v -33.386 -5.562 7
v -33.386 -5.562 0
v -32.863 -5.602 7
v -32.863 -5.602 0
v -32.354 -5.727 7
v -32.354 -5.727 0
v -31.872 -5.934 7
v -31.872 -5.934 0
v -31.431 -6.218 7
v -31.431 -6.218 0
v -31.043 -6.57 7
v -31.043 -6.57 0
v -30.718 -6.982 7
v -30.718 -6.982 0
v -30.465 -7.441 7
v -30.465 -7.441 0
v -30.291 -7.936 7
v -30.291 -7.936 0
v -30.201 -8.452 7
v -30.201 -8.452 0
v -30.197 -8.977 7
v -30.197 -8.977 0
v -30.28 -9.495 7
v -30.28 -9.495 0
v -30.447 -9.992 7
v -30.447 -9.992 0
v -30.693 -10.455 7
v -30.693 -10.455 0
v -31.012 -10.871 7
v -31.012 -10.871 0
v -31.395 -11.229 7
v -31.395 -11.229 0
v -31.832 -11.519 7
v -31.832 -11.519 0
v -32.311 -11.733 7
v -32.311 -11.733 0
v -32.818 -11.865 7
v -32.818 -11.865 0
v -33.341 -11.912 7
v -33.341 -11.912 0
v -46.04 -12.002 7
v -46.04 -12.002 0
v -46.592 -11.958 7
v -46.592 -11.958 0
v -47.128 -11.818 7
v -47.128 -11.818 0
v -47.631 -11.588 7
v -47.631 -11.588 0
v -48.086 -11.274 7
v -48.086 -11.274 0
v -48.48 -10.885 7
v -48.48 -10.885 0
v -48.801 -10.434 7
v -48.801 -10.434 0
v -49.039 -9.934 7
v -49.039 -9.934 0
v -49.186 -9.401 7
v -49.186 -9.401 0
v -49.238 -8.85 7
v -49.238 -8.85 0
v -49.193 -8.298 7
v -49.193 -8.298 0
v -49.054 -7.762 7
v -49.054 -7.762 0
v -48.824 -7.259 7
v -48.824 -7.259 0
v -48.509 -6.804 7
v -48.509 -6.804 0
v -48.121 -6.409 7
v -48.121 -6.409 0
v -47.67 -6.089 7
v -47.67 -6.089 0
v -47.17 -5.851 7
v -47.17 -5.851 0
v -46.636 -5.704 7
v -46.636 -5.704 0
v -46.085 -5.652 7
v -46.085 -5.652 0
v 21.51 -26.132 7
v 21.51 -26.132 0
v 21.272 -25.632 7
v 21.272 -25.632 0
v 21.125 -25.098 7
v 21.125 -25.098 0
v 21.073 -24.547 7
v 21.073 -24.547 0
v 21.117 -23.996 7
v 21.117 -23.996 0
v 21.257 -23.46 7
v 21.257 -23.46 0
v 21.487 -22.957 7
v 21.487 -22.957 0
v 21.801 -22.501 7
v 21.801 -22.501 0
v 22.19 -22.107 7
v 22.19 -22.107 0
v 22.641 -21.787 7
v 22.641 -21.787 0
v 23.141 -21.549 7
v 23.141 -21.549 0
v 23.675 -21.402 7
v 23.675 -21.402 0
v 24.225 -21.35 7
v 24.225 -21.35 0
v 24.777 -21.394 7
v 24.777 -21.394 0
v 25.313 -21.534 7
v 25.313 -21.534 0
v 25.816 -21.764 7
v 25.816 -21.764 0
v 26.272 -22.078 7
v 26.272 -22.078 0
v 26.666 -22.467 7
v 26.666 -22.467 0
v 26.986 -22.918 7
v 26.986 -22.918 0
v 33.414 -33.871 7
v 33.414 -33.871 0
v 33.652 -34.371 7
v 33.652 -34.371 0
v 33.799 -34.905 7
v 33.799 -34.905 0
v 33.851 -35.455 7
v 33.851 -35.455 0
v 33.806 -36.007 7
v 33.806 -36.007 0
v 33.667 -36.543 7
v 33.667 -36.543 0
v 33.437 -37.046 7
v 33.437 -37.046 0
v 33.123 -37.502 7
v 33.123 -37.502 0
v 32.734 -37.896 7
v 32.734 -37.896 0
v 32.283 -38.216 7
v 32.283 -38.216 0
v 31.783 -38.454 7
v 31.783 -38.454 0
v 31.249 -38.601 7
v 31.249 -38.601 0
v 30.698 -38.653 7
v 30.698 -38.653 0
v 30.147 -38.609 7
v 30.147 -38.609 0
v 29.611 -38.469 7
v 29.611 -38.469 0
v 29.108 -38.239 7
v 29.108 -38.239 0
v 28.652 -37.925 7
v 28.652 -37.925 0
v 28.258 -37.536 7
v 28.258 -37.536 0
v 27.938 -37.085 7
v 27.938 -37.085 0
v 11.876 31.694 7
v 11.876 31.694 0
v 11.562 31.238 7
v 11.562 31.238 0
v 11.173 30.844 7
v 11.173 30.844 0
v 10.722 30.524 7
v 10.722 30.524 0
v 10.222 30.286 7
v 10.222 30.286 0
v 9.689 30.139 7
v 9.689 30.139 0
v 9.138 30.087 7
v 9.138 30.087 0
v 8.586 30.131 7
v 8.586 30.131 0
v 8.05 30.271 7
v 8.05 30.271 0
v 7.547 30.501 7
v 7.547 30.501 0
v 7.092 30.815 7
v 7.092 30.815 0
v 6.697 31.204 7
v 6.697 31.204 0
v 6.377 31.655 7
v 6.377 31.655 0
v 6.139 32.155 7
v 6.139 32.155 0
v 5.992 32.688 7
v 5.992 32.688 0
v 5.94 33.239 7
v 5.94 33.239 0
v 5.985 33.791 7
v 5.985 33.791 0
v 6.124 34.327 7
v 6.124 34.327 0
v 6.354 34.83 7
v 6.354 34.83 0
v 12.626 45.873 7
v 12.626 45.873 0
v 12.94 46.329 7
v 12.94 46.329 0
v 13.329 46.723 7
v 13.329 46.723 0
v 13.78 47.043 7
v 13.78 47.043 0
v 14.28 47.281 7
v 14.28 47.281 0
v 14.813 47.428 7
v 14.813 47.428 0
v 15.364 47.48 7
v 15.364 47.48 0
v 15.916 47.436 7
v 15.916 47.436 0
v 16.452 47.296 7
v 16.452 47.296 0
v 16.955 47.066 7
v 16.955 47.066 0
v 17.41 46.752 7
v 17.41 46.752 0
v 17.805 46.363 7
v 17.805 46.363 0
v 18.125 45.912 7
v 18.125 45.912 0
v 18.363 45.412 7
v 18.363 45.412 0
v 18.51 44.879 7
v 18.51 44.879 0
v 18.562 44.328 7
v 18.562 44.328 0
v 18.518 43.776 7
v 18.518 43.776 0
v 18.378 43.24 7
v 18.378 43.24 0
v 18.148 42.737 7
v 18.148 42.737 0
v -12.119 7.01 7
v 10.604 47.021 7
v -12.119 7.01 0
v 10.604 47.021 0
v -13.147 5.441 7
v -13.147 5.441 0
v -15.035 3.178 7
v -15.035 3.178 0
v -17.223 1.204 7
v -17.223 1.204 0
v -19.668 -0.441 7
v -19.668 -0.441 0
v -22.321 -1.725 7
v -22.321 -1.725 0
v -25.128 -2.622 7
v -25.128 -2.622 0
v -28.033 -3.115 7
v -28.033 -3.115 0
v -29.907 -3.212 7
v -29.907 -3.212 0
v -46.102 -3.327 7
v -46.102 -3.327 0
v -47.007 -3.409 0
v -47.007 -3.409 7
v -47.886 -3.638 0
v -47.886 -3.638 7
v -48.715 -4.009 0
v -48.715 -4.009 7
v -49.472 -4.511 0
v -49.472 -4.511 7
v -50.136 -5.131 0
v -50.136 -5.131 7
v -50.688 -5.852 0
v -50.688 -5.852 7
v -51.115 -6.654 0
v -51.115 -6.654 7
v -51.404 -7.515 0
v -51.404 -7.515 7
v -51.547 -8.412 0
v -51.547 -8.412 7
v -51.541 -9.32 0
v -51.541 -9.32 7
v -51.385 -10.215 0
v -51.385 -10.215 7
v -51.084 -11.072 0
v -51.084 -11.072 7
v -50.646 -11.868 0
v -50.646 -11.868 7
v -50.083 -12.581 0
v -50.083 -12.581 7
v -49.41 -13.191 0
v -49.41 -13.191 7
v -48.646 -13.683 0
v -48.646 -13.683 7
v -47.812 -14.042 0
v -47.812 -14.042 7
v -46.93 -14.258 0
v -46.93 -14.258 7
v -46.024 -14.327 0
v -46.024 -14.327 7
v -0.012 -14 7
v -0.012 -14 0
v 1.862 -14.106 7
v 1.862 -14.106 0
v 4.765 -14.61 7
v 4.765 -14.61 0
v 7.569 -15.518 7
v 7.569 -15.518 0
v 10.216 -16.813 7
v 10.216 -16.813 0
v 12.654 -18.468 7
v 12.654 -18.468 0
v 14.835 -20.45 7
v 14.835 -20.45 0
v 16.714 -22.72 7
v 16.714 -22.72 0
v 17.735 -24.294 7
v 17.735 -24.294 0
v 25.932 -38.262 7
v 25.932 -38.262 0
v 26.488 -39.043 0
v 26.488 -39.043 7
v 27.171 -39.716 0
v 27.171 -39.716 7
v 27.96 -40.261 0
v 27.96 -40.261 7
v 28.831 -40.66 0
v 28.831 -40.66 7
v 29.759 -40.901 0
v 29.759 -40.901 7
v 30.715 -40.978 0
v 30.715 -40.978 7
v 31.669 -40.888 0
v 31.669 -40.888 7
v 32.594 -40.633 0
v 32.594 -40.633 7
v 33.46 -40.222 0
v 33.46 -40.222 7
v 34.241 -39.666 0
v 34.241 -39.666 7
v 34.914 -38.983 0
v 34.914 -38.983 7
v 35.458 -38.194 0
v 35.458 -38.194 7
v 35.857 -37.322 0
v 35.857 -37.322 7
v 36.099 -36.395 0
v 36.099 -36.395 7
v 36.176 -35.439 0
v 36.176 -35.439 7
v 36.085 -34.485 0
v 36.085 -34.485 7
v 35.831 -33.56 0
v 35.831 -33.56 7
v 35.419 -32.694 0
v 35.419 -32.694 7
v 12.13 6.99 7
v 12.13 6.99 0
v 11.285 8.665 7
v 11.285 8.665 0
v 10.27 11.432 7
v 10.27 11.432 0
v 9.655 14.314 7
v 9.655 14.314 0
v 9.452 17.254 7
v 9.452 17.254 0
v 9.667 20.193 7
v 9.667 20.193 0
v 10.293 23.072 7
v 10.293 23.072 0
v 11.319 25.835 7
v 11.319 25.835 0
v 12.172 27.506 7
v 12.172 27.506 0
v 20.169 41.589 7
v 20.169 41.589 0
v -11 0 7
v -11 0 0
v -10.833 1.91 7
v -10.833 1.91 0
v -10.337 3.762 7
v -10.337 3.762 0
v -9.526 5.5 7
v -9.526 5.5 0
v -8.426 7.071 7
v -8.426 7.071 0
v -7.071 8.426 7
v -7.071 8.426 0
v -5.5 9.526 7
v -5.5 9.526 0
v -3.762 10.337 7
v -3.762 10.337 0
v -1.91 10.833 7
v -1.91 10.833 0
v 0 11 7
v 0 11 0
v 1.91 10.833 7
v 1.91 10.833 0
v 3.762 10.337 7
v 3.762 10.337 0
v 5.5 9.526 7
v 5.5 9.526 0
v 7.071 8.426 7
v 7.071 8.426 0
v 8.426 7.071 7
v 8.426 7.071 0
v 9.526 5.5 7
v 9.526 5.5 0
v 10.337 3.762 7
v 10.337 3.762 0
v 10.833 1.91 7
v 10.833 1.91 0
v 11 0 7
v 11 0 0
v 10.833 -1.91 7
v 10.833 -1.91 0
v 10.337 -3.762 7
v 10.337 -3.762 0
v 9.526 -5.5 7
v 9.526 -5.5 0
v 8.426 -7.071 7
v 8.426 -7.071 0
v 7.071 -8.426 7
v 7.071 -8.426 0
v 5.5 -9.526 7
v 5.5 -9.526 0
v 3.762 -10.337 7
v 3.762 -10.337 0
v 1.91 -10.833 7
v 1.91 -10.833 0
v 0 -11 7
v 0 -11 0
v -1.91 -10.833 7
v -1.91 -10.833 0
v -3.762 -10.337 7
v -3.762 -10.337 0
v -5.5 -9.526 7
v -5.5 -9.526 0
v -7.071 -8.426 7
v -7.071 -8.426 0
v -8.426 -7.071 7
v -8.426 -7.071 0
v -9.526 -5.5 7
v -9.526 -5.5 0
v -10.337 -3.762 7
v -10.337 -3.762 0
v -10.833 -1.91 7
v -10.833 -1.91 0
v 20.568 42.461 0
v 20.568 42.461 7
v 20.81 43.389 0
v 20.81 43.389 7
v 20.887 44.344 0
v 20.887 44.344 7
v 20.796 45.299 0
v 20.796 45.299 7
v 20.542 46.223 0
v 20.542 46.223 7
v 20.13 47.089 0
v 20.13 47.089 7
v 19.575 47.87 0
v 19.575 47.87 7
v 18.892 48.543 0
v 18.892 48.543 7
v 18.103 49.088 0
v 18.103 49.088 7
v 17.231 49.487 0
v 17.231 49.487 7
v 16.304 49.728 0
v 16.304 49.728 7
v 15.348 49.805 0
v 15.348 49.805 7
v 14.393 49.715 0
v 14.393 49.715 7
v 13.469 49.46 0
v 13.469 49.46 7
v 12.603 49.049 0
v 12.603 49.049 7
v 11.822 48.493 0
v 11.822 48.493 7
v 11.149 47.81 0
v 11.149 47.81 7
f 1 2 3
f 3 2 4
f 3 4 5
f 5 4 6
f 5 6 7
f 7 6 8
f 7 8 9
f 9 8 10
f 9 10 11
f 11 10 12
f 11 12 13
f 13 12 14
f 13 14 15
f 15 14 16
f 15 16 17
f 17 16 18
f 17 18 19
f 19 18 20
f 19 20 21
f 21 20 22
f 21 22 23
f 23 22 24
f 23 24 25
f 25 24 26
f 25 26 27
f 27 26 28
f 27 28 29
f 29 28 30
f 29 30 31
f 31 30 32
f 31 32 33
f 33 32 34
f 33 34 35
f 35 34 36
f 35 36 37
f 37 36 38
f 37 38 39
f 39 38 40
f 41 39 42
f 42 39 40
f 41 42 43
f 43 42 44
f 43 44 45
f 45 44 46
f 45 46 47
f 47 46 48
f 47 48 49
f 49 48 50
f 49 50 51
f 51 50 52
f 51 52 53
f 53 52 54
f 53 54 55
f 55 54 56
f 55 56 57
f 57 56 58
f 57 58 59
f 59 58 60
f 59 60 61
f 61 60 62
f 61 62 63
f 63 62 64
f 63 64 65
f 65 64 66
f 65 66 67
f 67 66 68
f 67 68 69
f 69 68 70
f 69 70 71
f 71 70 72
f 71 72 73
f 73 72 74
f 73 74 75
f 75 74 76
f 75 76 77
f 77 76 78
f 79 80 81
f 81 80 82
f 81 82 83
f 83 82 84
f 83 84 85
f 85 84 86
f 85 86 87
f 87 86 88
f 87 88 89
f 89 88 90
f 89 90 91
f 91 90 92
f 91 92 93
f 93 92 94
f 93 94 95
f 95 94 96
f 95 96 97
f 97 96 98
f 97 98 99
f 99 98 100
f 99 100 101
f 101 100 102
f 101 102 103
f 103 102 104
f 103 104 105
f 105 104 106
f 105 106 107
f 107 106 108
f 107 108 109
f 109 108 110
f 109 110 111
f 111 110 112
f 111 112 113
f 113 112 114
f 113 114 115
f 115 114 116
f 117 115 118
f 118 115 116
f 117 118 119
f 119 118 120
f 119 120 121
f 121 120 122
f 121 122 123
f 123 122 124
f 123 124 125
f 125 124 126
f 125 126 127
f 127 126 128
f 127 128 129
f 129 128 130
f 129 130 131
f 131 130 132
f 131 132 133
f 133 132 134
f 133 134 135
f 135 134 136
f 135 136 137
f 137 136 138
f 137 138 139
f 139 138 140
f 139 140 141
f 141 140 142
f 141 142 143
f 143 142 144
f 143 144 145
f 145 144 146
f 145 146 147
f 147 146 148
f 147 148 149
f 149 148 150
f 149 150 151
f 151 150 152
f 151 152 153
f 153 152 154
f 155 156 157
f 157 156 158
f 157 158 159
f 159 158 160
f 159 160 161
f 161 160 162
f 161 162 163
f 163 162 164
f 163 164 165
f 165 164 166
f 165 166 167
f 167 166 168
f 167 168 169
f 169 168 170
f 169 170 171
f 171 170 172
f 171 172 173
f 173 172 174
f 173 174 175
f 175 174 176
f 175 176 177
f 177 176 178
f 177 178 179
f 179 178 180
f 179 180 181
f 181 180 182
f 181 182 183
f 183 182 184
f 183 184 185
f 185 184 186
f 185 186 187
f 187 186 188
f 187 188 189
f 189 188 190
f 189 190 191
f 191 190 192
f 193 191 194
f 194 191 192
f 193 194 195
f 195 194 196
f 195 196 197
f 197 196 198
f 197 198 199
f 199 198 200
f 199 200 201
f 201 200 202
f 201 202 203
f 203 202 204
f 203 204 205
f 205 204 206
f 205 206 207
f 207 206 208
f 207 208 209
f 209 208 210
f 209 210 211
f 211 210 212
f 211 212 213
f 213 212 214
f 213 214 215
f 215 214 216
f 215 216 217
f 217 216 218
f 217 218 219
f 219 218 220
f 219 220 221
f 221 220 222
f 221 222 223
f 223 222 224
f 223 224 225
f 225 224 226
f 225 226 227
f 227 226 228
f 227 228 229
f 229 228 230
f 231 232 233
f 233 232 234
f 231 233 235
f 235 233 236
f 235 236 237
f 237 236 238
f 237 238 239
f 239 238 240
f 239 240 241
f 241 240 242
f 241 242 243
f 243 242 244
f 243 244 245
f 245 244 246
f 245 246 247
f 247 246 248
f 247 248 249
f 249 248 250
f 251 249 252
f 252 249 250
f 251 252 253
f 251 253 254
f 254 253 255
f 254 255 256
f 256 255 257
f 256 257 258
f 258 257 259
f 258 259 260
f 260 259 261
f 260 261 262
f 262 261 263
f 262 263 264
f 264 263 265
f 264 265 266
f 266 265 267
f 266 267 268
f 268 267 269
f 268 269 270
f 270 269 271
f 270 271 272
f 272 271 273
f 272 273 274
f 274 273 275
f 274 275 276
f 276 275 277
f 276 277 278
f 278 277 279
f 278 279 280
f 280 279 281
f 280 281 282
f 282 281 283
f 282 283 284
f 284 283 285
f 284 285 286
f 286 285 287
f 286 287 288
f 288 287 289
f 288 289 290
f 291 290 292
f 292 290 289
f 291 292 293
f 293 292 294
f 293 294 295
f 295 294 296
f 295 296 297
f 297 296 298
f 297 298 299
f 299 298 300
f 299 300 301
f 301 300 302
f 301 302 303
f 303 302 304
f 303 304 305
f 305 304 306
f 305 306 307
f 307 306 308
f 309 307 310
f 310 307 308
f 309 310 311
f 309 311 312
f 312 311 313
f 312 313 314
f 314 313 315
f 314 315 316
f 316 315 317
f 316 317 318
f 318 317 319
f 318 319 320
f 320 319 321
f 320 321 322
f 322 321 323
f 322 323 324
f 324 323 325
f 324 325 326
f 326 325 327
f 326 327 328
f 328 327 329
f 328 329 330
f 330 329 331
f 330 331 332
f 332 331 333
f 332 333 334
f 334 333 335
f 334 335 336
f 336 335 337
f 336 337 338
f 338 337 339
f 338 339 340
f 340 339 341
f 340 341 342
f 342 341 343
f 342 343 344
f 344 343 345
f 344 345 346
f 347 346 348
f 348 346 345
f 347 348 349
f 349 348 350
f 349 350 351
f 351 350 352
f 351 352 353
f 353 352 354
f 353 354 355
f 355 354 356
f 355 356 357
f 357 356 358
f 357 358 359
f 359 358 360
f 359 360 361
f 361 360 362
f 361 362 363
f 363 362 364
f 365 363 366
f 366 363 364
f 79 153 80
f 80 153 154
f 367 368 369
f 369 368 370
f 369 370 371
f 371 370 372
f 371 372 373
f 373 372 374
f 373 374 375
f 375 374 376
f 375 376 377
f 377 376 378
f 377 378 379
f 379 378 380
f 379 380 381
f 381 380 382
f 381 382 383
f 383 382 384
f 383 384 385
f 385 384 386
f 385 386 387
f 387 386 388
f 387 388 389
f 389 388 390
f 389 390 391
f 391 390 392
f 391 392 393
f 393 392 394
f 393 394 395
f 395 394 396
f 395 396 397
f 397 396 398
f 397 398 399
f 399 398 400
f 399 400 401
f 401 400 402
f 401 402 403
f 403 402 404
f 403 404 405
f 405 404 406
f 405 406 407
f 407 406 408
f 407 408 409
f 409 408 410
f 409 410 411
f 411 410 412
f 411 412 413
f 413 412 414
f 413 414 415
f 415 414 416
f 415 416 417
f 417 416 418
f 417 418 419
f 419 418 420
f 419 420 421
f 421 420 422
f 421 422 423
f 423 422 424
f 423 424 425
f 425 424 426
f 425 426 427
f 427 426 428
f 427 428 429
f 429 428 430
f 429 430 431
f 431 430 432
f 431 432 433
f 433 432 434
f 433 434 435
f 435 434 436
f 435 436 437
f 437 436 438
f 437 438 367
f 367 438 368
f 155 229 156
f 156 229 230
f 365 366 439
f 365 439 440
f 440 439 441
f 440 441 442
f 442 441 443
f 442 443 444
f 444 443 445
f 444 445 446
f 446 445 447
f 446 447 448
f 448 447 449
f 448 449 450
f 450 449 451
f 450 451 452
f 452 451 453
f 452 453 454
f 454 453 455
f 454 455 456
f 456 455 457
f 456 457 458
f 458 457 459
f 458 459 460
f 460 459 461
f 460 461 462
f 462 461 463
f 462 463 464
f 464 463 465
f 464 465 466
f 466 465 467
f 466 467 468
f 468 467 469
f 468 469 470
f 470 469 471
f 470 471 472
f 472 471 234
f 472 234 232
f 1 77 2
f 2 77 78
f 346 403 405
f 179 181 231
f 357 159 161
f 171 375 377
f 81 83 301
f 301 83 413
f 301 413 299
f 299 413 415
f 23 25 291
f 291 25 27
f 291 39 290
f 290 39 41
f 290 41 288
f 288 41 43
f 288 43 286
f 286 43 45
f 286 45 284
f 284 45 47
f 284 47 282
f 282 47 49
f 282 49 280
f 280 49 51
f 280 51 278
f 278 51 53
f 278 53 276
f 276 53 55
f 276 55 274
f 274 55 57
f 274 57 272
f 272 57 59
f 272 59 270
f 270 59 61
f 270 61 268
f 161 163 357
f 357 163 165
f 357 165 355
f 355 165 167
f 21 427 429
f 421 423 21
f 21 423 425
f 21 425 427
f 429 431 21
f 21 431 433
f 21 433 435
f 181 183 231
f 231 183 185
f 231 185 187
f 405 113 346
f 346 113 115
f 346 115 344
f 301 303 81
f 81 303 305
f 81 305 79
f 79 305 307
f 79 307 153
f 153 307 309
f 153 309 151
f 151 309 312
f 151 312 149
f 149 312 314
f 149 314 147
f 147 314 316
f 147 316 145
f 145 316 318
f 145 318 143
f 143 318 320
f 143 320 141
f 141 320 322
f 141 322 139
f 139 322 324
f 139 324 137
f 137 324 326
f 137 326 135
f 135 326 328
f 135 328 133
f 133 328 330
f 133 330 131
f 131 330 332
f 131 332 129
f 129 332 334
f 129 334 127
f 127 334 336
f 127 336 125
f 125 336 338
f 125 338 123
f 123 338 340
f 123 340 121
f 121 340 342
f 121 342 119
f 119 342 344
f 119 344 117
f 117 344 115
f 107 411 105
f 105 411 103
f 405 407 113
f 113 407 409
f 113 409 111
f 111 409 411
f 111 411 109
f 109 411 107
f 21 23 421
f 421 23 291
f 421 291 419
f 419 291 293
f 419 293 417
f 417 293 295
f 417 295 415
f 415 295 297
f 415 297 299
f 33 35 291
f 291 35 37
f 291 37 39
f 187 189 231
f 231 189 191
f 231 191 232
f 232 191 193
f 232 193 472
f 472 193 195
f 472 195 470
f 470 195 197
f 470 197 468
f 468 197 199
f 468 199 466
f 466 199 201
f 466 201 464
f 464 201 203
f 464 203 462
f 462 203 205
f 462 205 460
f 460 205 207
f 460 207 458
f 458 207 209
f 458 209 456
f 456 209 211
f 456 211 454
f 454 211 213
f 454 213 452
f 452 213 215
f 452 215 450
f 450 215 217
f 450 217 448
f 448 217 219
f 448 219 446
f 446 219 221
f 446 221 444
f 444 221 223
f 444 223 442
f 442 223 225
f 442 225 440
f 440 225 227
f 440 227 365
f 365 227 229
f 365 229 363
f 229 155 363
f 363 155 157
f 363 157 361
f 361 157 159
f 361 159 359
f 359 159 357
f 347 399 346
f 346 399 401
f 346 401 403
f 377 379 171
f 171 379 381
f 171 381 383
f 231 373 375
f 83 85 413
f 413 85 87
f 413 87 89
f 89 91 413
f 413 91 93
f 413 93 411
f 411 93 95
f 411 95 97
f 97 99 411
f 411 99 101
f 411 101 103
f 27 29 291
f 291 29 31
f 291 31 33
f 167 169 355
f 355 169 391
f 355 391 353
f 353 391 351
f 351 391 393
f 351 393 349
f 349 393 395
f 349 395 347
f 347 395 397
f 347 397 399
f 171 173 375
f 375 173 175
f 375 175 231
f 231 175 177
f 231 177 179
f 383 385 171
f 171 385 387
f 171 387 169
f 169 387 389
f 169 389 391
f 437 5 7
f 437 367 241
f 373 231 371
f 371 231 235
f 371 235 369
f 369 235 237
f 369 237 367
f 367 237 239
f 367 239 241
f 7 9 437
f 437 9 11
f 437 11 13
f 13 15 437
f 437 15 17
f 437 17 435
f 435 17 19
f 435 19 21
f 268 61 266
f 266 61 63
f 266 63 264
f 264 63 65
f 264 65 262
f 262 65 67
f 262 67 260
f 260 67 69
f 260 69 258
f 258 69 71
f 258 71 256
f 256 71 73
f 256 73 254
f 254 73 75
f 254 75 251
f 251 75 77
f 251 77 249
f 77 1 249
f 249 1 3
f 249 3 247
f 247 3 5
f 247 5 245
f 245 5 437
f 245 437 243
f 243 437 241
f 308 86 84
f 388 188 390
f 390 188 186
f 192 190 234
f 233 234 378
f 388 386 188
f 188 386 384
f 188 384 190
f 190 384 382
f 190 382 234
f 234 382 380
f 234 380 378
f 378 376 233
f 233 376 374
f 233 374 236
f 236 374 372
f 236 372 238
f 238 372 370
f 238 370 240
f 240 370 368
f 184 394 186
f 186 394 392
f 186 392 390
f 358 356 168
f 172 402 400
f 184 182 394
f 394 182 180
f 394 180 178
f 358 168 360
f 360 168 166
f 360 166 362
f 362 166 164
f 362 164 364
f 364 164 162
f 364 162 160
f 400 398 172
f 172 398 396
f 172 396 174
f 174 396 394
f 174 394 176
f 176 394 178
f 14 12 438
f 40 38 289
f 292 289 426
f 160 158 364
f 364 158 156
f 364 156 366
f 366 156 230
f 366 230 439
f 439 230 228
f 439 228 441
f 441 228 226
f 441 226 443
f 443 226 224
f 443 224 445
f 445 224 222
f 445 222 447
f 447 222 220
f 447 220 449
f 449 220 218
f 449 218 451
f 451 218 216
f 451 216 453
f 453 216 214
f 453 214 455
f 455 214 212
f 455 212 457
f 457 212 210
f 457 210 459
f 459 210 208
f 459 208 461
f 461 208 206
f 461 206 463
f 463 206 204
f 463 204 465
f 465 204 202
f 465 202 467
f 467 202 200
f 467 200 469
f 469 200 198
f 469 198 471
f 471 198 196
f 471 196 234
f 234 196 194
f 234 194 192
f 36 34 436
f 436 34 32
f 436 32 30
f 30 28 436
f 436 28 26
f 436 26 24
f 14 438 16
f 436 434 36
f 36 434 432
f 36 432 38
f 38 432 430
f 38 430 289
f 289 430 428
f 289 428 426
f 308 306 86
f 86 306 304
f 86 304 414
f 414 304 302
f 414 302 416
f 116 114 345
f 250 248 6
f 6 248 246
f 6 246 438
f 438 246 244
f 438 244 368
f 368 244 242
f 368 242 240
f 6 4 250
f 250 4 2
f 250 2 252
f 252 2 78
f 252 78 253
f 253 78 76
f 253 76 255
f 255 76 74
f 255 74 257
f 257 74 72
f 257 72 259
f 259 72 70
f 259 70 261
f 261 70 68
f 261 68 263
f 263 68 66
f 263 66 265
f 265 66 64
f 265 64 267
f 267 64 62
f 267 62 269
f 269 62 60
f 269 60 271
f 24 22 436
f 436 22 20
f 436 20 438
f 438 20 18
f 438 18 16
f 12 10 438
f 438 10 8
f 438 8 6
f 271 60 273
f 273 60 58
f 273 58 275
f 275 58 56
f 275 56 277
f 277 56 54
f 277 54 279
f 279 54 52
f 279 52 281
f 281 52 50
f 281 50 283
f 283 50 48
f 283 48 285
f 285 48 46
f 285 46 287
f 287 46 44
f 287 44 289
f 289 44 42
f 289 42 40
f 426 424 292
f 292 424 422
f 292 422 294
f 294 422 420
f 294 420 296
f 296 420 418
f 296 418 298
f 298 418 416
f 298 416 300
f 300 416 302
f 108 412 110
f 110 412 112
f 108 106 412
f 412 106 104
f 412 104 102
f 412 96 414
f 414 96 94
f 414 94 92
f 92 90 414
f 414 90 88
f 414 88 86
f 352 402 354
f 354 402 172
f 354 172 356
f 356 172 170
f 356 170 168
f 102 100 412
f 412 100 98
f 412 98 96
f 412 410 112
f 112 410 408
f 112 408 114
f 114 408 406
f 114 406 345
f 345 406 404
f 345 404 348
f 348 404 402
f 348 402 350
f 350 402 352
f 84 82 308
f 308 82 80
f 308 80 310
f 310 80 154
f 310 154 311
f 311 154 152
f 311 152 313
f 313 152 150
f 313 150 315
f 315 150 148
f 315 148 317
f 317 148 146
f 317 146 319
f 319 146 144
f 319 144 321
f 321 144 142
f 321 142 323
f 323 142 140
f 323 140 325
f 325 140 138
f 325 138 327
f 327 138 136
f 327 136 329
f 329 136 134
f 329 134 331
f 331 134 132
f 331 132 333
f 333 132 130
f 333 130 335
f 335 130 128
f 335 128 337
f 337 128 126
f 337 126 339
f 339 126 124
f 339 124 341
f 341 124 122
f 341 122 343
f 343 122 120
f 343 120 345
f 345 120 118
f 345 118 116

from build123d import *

# Parameters (mm, degrees)
SKETCH1_R           = 11
BOSS_EXTRUDE2_DEPTH = 7


with BuildPart() as part:
    # Sketch1 → Boss-Extrude2 (new body)
    with BuildSketch(Plane.XY):
        with BuildLine():
            ThreePointArc((20.169463689, 41.588983826), (18.10306117, 49.087649082), (10.604395914, 47.021246564))
            Line((10.604395914, 47.021246564), (-12.118876528, 7.010361333))
            ThreePointArc((-12.118876528, 7.010361333), (-19.668266357, -0.440838827), (-29.907048562, -3.212302261))
            Line((-29.907048562, -3.212302261), (-46.101848355, -3.327223978))
            ThreePointArc((-46.101848355, -3.327223978), (-51.562681703, -8.866113681), (-46.023791999, -14.326947029))
            Line((-46.023791999, -14.326947029), (-0.01171274, -14.000435605))
            ThreePointArc((-0.01171274, -14.000435605), (10.215910802, -16.8127989), (17.735459644, -24.294112676))
            Line((17.735459644, -24.294112676), (25.932384666, -38.261759848))
            ThreePointArc((25.932384666, -38.261759848), (33.459620532, -40.221535401), (35.419396085, -32.694299535))
            Line((35.419396085, -32.694299535), (12.130589268, 6.990074273))
            ThreePointArc((12.130589268, 6.990074273), (9.452355555, 17.253637727), (12.171588918, 27.506414937))
            Line((12.171588918, 27.506414937), (20.169463689, 41.588983826))
        make_face()
        with BuildLine():
            Line((6.354309168, 34.829758236), (12.626103421, 45.873063758))
            ThreePointArc((12.626103421, 45.873063758), (16.954878364, 47.065941576), (18.147756182, 42.737166632))
            Line((18.147756182, 42.737166632), (11.875961929, 31.69386111))
            ThreePointArc((11.875961929, 31.69386111), (7.547186985, 30.500983292), (6.354309168, 34.829758236))
        make_face(mode=Mode.SUBTRACT)
        with BuildLine():
            ThreePointArc((-46.040290274, -12.002005566), (-49.23774024, -8.849615406), (-46.08535008, -5.652165441))
            Line((-46.08535008, -5.652165441), (-33.38566983, -5.56204583))
            ThreePointArc((-33.38566983, -5.56204583), (-30.188219864, -8.71443599), (-33.340610024, -11.911885955))
            Line((-33.340610024, -11.911885955), (-46.040290274, -12.002005566))
        make_face(mode=Mode.SUBTRACT)
        Circle(SKETCH1_R, mode=Mode.SUBTRACT)
        with BuildLine():
            ThreePointArc((33.414186854, -33.871058192), (32.282861875, -38.216326169), (27.937593898, -37.085001191))
            Line((27.937593898, -37.085001191), (21.509707901, -26.13181528))
            ThreePointArc((21.509707901, -26.13181528), (22.641032879, -21.786547303), (26.986300856, -22.917872281))
            Line((26.986300856, -22.917872281), (33.414186854, -33.871058192))
        make_face(mode=Mode.SUBTRACT)
    extrude(amount=BOSS_EXTRUDE2_DEPTH)


solid = part.part
